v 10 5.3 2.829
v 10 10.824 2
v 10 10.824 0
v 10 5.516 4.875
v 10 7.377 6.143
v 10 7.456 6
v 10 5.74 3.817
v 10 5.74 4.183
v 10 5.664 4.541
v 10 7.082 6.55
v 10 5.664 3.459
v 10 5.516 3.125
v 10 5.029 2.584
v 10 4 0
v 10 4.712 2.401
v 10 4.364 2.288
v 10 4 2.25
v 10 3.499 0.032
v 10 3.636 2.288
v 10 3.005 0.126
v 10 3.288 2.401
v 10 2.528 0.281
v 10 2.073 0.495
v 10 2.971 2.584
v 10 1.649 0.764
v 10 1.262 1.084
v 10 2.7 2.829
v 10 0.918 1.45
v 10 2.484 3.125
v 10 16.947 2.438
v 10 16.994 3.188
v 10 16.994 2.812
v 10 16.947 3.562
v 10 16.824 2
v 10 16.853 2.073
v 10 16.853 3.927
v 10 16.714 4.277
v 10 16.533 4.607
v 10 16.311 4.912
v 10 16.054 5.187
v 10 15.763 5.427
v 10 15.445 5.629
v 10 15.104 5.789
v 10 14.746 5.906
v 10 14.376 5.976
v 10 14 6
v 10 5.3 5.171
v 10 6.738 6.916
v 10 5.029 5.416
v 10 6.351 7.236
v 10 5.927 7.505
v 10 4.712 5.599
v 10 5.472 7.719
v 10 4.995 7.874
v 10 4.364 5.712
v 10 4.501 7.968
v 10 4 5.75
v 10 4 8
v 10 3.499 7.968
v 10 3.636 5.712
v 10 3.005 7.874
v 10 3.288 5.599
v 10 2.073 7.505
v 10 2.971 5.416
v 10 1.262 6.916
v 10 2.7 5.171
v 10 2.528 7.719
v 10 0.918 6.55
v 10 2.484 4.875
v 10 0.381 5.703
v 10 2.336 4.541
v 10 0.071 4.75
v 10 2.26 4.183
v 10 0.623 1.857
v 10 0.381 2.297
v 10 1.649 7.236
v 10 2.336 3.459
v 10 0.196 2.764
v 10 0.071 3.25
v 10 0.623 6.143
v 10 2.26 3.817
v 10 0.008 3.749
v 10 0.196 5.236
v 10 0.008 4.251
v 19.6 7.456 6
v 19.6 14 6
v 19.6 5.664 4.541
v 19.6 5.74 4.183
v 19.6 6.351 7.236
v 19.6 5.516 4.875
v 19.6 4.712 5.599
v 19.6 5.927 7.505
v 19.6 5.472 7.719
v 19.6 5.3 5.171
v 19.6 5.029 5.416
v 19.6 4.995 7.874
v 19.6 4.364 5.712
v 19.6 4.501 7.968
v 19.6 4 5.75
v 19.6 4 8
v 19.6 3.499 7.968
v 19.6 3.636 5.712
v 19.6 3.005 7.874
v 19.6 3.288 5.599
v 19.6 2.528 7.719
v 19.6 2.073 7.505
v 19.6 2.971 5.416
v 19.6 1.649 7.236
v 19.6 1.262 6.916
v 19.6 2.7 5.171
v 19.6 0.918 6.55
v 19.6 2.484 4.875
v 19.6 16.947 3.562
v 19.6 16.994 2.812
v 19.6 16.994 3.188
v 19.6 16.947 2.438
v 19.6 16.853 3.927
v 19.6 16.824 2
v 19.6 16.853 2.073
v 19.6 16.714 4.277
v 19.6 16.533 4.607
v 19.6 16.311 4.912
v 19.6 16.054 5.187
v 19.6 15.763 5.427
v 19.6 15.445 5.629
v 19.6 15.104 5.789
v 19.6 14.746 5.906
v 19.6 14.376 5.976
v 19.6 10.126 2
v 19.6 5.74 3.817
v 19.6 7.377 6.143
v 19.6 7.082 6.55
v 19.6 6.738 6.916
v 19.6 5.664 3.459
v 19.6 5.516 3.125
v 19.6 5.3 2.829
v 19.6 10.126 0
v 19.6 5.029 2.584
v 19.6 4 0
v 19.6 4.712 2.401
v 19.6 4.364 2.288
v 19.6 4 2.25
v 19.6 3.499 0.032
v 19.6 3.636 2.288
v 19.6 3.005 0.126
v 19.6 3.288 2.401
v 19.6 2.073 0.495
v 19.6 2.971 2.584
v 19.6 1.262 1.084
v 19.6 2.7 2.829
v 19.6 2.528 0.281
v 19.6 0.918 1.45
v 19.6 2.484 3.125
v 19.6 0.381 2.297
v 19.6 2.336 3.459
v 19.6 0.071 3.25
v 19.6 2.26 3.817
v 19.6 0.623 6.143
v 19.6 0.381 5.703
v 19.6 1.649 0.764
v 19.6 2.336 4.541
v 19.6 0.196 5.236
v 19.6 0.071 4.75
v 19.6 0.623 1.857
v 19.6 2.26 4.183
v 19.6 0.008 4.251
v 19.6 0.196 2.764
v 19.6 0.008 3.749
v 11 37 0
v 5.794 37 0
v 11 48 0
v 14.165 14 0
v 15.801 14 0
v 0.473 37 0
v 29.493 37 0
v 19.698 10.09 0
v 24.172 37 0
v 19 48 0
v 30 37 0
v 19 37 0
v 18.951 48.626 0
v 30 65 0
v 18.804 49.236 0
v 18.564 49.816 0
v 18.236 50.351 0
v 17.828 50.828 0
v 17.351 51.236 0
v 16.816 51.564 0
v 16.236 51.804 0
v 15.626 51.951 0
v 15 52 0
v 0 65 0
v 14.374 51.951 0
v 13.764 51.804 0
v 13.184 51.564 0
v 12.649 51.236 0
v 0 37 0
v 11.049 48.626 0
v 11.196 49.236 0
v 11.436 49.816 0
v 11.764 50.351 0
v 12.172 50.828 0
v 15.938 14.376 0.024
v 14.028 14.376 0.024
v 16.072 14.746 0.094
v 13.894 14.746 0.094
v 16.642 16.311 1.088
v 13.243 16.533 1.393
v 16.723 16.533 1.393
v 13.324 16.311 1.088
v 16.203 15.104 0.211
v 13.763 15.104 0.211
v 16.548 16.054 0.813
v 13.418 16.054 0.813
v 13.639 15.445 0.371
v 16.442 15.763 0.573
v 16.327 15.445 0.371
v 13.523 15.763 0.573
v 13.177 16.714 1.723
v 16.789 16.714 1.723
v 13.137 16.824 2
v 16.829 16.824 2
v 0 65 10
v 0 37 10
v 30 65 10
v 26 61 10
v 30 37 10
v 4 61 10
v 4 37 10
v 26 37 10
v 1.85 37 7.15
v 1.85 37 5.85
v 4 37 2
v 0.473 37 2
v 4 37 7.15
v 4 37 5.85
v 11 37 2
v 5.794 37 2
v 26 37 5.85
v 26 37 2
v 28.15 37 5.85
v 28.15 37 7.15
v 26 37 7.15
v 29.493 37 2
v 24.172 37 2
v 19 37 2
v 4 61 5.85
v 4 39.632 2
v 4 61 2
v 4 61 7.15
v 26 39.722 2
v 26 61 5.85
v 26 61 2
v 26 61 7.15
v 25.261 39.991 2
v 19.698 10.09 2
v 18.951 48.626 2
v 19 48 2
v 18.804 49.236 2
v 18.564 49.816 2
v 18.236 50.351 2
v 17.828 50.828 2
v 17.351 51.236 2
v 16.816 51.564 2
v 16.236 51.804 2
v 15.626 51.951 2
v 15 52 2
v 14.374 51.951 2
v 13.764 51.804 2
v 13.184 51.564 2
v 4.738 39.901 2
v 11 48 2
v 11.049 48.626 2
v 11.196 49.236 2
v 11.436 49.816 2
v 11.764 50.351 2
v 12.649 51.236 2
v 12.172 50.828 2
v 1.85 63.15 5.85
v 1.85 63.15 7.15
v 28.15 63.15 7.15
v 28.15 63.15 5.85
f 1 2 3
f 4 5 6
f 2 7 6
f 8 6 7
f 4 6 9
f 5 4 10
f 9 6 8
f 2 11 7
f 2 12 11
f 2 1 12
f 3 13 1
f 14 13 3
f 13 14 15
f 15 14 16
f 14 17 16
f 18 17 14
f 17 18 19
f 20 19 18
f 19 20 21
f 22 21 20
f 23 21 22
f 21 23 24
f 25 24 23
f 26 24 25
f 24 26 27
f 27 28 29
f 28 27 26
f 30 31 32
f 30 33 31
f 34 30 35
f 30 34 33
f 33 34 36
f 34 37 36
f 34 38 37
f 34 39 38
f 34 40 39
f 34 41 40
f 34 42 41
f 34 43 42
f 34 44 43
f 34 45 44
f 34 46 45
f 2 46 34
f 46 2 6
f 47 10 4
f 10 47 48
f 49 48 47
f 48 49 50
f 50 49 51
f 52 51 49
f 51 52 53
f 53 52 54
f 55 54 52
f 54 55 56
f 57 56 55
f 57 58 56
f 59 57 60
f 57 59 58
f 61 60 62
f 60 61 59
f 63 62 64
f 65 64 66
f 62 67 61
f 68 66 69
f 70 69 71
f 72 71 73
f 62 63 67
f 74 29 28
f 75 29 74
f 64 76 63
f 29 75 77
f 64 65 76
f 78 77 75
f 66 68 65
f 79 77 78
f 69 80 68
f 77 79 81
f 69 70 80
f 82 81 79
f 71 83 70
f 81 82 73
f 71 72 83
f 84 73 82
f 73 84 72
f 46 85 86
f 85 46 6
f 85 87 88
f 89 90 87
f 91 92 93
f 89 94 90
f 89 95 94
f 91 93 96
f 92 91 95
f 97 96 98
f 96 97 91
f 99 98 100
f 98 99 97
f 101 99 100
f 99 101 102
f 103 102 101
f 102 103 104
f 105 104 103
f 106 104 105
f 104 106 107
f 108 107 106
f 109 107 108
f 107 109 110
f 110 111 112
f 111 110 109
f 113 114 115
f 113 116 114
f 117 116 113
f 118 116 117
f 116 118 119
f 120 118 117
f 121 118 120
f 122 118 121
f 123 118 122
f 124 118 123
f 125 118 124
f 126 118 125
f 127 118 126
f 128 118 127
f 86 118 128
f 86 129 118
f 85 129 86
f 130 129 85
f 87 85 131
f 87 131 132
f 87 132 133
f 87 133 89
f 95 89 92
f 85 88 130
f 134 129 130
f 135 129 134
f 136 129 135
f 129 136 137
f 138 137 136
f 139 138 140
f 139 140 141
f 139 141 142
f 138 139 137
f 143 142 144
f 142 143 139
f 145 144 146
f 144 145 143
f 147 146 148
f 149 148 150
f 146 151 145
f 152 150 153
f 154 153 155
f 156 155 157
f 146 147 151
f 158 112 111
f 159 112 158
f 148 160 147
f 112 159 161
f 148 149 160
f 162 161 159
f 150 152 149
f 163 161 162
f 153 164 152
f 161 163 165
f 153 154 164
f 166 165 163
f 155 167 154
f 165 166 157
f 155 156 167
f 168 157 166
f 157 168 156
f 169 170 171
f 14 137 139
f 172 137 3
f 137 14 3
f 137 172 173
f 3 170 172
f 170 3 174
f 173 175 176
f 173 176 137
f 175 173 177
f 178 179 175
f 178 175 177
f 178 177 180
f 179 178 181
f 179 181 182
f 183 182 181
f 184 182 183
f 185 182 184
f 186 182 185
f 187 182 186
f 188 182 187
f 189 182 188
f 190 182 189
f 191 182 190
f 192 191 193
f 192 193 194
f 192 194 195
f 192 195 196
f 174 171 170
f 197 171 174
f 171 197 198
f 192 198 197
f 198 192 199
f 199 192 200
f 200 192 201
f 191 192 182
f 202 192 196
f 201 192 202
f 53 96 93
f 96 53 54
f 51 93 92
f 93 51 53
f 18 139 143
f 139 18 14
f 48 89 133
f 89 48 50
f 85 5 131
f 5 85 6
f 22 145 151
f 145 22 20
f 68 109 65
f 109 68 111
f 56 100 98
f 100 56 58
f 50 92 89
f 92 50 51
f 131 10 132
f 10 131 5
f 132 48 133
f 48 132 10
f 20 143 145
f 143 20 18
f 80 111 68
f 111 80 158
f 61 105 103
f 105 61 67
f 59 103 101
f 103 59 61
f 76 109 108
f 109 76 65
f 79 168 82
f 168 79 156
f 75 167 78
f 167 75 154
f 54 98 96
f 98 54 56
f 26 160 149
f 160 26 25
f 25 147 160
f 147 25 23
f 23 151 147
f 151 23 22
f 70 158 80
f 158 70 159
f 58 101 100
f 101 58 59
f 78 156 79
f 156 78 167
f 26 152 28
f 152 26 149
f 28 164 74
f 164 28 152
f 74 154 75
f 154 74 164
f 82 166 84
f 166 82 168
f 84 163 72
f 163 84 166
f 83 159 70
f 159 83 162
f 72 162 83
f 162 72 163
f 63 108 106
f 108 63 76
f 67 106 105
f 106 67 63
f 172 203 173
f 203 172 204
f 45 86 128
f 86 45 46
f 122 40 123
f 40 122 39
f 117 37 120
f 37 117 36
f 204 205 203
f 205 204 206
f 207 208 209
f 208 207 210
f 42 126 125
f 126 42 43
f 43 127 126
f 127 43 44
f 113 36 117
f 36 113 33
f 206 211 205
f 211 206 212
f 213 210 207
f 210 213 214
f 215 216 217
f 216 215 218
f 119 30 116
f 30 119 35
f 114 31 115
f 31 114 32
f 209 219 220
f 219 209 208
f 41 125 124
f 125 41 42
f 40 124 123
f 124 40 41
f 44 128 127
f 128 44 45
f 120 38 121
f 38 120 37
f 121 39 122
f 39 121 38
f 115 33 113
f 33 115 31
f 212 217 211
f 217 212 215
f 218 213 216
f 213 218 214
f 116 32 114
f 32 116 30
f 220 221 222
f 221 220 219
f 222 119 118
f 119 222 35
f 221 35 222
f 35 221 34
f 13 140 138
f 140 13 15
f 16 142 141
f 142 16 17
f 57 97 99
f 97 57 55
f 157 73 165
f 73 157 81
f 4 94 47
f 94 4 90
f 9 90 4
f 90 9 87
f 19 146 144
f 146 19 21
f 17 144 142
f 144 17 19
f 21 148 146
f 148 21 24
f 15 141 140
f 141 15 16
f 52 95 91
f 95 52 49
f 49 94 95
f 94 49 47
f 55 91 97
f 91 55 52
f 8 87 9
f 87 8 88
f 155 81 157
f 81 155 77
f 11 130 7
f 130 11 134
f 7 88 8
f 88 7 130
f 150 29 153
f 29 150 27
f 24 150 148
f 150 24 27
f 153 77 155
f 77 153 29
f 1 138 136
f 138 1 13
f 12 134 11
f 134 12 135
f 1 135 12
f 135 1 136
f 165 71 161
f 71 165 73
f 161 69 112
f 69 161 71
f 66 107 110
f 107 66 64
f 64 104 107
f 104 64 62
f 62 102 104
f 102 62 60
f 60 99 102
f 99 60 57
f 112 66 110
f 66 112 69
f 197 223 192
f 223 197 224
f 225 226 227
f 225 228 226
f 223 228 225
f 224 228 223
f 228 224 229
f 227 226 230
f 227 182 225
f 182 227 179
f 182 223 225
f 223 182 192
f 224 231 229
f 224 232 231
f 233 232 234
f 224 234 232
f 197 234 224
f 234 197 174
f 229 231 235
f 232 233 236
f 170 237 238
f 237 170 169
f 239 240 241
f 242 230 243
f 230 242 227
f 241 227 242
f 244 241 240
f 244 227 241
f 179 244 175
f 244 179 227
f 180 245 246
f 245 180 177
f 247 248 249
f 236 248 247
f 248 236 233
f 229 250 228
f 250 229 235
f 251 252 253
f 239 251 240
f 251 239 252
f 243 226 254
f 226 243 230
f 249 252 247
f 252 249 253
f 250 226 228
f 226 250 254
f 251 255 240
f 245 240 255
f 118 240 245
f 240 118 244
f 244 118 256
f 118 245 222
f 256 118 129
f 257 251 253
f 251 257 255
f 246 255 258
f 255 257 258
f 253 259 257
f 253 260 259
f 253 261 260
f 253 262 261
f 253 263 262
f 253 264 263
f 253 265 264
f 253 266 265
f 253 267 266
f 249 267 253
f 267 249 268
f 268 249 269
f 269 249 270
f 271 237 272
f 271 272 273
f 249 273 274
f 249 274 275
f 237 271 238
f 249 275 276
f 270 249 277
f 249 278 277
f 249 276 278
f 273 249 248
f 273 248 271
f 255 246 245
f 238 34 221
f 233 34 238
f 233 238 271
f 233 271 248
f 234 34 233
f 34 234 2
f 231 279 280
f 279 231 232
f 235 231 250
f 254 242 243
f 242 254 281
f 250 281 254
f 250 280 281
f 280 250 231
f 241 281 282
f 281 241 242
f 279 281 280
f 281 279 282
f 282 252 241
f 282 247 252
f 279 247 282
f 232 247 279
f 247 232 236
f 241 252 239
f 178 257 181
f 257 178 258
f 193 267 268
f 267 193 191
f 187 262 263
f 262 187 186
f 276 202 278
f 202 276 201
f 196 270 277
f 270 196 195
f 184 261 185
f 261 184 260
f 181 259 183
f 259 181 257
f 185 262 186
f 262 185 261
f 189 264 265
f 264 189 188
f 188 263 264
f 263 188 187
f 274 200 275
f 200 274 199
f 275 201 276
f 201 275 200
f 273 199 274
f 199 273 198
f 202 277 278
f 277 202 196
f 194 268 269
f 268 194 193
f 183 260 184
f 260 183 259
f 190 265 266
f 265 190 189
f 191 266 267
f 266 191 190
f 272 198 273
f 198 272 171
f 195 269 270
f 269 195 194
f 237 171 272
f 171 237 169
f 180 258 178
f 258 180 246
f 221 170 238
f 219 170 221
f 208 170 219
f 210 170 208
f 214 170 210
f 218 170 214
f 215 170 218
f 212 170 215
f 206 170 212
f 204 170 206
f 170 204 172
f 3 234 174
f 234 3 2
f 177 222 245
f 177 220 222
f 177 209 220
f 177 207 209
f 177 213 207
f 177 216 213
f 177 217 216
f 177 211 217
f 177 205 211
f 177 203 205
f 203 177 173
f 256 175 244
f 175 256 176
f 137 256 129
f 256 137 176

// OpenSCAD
// screw settings
screw_correction=.5;
base_screw_size=3;
screws=base_screw_size+screw_correction;

// model height
height=9.6;

// printer tolerance for camera rails
cam_tolerance = 0.3;

circle_res=40;

module base_arm(){
    length=10;
    difference(){
    union(){
        cube([height,length,6]);
        rotate([0,90,0])
        translate([-4,0,0])
        cylinder(height,r=4,$fn=50);
        rotate([0,90,0])
        translate([-3,length,0])
        cylinder(height,r=3,$fn=50);
    }
    translate([-1,0,4])
    rotate([0,90,0])
    cylinder(25,screws/2,screws/2,$fn=30);
}
}

module cam_only_mount(){
    difference(){
        // outside shell
        cube([30,28,10]);
        // main camera space
        translate([4,-2,2])
        cube([22,26,9]);
        // guide rails
        translate([15,12,6.5])
        cube([26+cam_tolerance,28+cam_tolerance,1+cam_tolerance],center=true);
        // lens port
        translate([15,11,-1])
        cylinder(r=4,h=5, $fn=circle_res);
        // lens entry guide
        translate([11,-1,-1])
        cube([8,12,4]);
    }
}

module linkage(){
    union(){
        translate([10.3,0,0])
        rotate([0,0,20])
        cube([5,30,2]);
        translate([15,1.8,0])
        rotate([0,0,-20])
        cube([5,30,2]);
    }
}

module RPi_cam_mount(){
    union(){
        translate([10,4,0])
        base_arm();
        translate([0,37,0])
        cam_only_mount();
        translate([0,10,0])
        linkage();
    }
}

RPi_cam_mount();

// debugging

// from https://github.com/larsch/openscad-modules/blob/master/rpi-camera.scad
module rpi_camera() {
     color("darkblue")
	  difference() {
	  cube([24,25,1]);
	  translate([2,2,-1]) cylinder(d=2,h=3,$fn=8);
	  translate([2,23,-1]) cylinder(d=2,h=3,$fn=8);
	  translate([14.5,2,-1]) cylinder(d=2,h=3,$fn=8);
	  translate([14.5,23,-1]) cylinder(d=2,h=3,$fn=8);
     }
     color("DimGray") union() {
	  translate([10.25,8.5,1]) cube([8,8,3.25]);
	  translate([10.25+4,12.5,1+3.25]) cylinder(d=7.5,h=1,$fn=16);
	  translate([10.25+4,12.5,1+3.25+0.7]) cylinder(d=5.5,h=0.7,$fn=16);
     }
     color("orange") translate([1.75,8.625,1]) cube([8.5,7.75,1.5]);
     color("brown") translate([24-5.75,2.75,-2.75]) cube([4.5,19.5,2.75]);
     color("black") translate([22.75,2,-2.75]) cube([1.25,21,2.75]);
     color("grey") translate([24,4.25,-1]) cube([10,16.5,0.1]);
}

//translate([27.5,63,7]) rotate([0,180,90]) rpi_camera();

// original Sketchup version for comparison
//#translate([15,50,0]) import("cam_orig.stl");
